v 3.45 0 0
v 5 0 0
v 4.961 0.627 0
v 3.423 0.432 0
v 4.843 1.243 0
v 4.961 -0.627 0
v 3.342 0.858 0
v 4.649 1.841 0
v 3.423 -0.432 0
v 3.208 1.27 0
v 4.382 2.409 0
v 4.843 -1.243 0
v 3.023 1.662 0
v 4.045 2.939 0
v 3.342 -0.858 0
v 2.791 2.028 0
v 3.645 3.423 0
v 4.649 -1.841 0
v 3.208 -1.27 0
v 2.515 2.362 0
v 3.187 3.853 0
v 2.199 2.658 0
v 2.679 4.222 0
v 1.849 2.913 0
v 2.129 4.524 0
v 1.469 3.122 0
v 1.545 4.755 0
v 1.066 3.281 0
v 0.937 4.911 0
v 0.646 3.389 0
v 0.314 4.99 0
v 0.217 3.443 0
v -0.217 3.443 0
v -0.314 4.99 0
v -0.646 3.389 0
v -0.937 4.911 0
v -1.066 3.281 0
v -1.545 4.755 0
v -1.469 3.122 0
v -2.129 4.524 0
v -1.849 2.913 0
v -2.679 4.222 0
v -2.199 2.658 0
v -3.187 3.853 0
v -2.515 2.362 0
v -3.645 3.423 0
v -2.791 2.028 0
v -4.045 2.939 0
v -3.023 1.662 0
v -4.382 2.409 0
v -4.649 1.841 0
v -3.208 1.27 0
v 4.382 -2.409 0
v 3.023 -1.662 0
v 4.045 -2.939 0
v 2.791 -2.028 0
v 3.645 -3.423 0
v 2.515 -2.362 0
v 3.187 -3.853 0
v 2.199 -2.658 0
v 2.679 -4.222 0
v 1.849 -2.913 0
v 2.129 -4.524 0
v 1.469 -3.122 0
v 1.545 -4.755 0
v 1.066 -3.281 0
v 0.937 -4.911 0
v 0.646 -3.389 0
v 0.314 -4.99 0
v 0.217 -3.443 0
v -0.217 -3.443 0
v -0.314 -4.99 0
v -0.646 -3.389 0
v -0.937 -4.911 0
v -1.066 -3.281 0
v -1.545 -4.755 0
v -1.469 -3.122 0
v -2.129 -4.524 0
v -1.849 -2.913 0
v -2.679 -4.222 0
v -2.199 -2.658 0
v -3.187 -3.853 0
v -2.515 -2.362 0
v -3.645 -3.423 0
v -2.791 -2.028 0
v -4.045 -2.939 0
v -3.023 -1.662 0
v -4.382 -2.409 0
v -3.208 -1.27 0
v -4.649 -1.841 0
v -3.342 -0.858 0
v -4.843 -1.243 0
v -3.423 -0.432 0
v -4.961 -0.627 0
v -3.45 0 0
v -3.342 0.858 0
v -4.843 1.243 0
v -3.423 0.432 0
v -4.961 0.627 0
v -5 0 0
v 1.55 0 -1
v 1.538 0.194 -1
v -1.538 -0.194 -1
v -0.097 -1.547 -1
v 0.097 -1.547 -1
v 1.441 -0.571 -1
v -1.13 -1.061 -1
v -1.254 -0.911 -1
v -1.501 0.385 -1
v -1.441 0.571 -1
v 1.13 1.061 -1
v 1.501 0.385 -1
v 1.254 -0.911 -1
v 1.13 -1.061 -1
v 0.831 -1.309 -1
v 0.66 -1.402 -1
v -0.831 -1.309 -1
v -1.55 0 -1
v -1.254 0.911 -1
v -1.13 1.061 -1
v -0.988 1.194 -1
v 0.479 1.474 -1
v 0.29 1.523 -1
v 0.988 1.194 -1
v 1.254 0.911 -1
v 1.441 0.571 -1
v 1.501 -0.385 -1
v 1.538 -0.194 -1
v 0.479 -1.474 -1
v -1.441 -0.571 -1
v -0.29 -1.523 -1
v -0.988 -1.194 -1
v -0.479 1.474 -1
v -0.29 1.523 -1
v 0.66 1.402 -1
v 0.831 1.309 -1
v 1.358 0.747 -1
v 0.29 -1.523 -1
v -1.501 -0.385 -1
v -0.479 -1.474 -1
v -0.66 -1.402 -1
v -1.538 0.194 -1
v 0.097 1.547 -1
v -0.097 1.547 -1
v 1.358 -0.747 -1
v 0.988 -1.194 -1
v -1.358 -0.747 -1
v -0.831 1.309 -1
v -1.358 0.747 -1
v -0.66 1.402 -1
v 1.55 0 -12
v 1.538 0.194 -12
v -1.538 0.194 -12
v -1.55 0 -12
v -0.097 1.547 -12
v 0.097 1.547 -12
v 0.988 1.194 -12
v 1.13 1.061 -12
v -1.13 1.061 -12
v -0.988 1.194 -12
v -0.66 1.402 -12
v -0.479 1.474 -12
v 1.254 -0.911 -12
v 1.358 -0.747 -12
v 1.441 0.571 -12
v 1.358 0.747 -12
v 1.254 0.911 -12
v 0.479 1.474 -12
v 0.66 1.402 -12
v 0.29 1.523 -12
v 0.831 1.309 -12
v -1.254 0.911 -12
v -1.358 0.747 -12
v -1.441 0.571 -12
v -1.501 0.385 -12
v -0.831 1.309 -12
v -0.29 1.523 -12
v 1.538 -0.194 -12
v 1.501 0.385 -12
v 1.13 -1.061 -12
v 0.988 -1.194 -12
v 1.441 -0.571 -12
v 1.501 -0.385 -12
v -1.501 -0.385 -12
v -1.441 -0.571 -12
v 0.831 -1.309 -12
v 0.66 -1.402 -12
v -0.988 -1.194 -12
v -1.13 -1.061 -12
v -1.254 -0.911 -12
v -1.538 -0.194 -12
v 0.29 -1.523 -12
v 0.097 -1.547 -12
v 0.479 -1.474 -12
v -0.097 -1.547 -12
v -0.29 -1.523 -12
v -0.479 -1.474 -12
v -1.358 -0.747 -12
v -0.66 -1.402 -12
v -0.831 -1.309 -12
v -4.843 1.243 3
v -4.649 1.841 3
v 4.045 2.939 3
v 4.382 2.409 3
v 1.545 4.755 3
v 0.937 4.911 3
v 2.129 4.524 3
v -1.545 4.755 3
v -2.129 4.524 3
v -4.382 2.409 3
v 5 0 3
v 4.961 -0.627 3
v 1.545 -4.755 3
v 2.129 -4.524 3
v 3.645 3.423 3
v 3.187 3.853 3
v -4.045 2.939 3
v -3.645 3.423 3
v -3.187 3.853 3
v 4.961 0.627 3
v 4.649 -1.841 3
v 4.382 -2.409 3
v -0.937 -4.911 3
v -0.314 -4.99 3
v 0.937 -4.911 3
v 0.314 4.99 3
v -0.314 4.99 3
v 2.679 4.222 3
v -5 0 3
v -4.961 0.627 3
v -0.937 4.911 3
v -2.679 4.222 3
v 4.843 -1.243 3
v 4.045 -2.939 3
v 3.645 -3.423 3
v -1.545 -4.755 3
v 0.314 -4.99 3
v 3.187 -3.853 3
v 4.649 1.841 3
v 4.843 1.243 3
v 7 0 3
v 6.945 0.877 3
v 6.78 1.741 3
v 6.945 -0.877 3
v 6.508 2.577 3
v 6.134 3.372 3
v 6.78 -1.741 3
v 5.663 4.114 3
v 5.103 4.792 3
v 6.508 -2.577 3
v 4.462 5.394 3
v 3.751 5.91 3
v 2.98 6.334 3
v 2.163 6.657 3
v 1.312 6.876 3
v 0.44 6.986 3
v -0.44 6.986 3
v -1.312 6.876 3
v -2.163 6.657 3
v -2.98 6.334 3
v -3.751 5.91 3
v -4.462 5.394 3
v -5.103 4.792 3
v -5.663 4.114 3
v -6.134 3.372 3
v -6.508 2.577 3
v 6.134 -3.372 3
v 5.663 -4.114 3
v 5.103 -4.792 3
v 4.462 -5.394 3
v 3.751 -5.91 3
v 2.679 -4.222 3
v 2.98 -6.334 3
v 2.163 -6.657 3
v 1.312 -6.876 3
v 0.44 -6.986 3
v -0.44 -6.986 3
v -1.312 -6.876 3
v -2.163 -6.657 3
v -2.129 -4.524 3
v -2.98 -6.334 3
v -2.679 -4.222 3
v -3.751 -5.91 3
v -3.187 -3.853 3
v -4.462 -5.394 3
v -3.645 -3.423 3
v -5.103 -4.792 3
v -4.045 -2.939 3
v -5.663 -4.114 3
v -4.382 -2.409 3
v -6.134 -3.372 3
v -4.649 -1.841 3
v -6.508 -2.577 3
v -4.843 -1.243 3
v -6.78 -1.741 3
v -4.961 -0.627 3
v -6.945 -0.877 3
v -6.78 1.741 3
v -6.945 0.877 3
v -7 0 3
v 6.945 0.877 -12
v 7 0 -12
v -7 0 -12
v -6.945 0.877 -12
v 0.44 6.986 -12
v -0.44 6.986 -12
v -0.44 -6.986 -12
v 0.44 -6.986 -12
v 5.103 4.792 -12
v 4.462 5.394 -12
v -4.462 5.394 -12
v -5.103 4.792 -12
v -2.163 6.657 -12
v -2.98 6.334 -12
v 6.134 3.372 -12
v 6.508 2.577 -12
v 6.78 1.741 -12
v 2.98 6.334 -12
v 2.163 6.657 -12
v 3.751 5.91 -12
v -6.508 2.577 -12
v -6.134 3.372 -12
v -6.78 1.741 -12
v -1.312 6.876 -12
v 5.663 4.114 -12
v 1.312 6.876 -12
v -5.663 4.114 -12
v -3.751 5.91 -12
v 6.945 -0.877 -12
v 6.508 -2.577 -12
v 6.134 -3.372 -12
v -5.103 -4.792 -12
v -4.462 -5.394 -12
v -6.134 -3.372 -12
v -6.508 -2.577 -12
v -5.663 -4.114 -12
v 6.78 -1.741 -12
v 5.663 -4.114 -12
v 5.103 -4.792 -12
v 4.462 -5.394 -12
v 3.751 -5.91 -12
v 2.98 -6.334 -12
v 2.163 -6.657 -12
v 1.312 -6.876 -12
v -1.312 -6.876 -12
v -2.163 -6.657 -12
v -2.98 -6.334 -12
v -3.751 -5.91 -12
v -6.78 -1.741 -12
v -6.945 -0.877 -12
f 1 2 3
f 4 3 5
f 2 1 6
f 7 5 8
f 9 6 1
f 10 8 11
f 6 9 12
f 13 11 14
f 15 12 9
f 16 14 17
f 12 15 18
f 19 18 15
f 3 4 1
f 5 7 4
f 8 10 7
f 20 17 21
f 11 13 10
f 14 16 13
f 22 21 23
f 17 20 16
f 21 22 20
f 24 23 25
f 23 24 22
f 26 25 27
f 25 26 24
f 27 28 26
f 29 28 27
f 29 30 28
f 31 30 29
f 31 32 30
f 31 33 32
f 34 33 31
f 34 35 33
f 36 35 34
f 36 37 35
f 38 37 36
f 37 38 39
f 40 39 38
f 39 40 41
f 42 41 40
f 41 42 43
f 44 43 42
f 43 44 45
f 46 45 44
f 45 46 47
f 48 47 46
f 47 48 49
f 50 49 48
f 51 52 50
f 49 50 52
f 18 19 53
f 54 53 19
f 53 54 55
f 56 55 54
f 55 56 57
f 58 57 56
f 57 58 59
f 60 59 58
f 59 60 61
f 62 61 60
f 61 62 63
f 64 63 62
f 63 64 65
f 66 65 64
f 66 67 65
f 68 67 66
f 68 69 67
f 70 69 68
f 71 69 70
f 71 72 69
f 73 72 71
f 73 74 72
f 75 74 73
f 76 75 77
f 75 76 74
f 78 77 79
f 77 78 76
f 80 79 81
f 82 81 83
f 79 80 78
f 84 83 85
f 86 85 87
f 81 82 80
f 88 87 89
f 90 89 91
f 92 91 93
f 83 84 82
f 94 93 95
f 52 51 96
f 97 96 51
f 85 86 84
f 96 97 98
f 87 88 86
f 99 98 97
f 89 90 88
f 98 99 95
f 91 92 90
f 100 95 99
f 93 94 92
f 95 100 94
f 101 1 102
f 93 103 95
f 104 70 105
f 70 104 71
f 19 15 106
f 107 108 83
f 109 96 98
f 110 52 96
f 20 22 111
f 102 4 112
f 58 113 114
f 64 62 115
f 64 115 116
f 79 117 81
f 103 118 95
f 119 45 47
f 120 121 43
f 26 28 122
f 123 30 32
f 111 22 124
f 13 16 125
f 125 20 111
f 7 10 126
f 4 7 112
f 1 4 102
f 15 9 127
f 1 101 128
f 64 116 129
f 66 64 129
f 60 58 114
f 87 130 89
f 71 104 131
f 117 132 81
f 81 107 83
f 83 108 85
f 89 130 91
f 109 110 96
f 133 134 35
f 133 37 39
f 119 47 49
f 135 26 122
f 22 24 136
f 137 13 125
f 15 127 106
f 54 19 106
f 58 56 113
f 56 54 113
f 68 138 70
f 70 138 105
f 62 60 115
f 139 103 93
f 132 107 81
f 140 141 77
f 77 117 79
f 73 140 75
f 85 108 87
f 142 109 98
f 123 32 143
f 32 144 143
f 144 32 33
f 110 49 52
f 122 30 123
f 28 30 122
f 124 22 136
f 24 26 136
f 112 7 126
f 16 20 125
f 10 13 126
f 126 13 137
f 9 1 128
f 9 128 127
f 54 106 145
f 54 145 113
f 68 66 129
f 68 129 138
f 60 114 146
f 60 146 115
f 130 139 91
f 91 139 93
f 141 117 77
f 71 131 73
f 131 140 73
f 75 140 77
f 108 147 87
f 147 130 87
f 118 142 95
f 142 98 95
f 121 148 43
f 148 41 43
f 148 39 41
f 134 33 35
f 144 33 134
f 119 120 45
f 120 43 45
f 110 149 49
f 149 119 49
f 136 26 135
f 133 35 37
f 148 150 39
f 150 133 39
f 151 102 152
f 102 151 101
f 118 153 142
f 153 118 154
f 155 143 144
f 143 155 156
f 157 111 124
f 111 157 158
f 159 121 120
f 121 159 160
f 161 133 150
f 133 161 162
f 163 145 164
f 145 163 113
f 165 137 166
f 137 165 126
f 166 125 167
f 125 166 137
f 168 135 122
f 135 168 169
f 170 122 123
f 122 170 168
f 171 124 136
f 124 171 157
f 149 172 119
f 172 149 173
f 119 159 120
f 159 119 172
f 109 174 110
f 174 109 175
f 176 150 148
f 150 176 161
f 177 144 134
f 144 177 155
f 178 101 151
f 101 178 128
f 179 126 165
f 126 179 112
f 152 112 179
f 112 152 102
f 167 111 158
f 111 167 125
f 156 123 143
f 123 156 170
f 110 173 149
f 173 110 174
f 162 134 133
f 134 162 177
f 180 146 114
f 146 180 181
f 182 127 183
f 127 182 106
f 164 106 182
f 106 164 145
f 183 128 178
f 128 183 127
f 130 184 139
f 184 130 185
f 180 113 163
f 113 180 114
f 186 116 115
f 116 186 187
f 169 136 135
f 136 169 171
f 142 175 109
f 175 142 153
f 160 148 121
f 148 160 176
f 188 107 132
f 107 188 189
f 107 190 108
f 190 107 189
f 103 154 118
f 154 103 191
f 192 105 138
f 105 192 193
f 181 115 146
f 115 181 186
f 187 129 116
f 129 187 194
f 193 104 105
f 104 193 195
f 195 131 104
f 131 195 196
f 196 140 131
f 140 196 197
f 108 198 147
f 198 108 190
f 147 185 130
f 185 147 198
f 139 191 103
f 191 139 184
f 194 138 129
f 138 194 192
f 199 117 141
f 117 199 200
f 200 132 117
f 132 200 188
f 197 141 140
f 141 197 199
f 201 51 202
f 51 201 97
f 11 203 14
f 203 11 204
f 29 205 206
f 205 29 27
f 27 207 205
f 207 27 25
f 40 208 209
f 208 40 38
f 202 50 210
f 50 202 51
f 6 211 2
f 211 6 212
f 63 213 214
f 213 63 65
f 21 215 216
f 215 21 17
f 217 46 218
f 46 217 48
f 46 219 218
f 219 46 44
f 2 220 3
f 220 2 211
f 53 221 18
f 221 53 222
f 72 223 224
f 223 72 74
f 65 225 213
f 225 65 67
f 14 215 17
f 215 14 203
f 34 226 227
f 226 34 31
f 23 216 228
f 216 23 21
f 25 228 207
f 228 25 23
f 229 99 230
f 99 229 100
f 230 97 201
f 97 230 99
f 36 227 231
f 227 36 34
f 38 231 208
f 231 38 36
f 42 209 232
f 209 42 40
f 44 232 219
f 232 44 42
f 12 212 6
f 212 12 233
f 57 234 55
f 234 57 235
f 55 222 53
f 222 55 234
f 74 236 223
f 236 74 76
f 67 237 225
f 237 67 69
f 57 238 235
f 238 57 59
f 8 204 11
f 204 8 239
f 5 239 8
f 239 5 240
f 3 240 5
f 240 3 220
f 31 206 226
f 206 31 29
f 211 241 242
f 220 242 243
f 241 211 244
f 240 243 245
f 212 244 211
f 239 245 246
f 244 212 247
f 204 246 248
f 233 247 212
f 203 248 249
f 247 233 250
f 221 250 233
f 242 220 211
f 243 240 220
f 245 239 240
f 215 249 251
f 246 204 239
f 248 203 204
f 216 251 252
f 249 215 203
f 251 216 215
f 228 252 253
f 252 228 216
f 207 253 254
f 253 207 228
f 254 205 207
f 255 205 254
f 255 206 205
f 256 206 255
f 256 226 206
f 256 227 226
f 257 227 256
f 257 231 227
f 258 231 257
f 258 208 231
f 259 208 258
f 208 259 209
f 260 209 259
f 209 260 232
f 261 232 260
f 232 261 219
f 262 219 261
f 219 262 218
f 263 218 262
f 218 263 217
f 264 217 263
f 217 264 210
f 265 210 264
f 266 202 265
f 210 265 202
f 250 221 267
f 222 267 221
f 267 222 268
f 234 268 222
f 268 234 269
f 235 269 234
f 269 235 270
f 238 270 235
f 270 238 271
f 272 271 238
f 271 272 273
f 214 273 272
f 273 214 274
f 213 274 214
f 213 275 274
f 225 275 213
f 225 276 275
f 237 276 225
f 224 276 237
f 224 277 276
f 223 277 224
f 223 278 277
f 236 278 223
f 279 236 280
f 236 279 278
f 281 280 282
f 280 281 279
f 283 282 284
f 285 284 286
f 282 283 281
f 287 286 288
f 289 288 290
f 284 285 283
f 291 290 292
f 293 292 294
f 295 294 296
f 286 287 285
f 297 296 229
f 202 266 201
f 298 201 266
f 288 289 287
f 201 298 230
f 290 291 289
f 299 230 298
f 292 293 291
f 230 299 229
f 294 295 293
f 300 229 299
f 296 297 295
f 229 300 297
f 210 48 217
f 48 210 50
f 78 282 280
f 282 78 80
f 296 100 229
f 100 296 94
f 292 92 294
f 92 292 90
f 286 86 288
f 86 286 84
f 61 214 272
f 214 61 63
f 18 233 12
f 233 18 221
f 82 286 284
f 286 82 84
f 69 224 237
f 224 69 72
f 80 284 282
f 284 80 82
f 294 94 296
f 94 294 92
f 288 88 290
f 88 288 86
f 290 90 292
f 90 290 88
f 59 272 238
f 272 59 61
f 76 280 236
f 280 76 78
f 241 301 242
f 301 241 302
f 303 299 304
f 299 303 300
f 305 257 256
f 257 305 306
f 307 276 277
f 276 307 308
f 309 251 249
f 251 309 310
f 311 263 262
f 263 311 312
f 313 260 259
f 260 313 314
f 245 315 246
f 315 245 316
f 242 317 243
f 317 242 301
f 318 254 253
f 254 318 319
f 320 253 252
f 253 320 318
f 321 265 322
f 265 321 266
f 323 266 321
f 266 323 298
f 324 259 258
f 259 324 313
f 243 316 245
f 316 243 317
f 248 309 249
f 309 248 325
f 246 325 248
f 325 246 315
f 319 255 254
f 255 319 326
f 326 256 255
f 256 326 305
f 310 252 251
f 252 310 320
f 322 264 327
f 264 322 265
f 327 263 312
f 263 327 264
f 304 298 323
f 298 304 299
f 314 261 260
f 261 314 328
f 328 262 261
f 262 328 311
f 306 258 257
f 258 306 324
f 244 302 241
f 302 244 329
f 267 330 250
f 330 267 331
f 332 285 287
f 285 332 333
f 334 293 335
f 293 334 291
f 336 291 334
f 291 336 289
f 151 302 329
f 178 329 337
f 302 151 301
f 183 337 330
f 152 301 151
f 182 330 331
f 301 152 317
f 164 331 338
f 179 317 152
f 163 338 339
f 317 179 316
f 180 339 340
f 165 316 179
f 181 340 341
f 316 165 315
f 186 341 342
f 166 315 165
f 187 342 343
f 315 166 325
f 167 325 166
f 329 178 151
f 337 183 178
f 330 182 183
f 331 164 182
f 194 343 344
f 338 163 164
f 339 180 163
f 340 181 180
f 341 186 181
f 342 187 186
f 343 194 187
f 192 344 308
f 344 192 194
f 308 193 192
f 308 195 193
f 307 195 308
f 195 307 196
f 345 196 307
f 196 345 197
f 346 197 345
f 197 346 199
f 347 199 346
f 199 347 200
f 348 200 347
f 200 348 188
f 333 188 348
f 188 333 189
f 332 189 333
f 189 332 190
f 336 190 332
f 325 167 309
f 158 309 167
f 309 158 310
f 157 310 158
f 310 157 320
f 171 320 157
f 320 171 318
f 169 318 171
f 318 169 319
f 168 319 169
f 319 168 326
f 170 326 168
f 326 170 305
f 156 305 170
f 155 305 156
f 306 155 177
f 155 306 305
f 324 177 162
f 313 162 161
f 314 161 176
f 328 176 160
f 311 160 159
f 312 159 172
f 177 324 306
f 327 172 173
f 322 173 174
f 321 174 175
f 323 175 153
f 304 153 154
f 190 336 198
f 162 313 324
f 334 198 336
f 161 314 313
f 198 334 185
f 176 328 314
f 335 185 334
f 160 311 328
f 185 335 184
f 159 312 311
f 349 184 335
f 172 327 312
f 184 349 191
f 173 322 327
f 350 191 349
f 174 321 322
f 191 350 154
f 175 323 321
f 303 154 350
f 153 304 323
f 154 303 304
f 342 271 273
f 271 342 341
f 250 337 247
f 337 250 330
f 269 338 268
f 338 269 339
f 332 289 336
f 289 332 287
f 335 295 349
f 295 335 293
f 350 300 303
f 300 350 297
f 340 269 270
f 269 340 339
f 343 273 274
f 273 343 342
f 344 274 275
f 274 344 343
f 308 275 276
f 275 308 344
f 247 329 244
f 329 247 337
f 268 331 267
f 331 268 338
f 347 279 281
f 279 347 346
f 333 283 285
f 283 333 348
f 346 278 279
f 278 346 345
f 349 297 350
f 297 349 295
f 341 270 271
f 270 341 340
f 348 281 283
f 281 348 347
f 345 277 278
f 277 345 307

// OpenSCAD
$fn = 50;


difference() {
	union() {
		translate(v = [0, 0, -12.0000000000]) {
			cylinder(h = 15, r = 7.0000000000);
		}
	}
	union() {
		translate(v = [0, 0, 0]) {
			rotate(a = [0, 0, 0]) {
				difference() {
					union() {
						translate(v = [0, 0, -15.0000000000]) {
							cylinder(h = 15, r = 1.2500000000);
						}
						translate(v = [0, 0, -1.0000000000]) {
							cylinder(h = 1.0000000000, r1 = 1.5500000000, r2 = 3.4500000000);
						}
						translate(v = [0, 0, -15.0000000000]) {
							cylinder(h = 15, r = 1.5500000000);
						}
						translate(v = [0, 0, -15.0000000000]) {
							cylinder(h = 15, r = 1.2500000000);
						}
					}
					union();
				}
			}
		}
		#cylinder(h = 3, r = 5.0000000000);
	}
}
